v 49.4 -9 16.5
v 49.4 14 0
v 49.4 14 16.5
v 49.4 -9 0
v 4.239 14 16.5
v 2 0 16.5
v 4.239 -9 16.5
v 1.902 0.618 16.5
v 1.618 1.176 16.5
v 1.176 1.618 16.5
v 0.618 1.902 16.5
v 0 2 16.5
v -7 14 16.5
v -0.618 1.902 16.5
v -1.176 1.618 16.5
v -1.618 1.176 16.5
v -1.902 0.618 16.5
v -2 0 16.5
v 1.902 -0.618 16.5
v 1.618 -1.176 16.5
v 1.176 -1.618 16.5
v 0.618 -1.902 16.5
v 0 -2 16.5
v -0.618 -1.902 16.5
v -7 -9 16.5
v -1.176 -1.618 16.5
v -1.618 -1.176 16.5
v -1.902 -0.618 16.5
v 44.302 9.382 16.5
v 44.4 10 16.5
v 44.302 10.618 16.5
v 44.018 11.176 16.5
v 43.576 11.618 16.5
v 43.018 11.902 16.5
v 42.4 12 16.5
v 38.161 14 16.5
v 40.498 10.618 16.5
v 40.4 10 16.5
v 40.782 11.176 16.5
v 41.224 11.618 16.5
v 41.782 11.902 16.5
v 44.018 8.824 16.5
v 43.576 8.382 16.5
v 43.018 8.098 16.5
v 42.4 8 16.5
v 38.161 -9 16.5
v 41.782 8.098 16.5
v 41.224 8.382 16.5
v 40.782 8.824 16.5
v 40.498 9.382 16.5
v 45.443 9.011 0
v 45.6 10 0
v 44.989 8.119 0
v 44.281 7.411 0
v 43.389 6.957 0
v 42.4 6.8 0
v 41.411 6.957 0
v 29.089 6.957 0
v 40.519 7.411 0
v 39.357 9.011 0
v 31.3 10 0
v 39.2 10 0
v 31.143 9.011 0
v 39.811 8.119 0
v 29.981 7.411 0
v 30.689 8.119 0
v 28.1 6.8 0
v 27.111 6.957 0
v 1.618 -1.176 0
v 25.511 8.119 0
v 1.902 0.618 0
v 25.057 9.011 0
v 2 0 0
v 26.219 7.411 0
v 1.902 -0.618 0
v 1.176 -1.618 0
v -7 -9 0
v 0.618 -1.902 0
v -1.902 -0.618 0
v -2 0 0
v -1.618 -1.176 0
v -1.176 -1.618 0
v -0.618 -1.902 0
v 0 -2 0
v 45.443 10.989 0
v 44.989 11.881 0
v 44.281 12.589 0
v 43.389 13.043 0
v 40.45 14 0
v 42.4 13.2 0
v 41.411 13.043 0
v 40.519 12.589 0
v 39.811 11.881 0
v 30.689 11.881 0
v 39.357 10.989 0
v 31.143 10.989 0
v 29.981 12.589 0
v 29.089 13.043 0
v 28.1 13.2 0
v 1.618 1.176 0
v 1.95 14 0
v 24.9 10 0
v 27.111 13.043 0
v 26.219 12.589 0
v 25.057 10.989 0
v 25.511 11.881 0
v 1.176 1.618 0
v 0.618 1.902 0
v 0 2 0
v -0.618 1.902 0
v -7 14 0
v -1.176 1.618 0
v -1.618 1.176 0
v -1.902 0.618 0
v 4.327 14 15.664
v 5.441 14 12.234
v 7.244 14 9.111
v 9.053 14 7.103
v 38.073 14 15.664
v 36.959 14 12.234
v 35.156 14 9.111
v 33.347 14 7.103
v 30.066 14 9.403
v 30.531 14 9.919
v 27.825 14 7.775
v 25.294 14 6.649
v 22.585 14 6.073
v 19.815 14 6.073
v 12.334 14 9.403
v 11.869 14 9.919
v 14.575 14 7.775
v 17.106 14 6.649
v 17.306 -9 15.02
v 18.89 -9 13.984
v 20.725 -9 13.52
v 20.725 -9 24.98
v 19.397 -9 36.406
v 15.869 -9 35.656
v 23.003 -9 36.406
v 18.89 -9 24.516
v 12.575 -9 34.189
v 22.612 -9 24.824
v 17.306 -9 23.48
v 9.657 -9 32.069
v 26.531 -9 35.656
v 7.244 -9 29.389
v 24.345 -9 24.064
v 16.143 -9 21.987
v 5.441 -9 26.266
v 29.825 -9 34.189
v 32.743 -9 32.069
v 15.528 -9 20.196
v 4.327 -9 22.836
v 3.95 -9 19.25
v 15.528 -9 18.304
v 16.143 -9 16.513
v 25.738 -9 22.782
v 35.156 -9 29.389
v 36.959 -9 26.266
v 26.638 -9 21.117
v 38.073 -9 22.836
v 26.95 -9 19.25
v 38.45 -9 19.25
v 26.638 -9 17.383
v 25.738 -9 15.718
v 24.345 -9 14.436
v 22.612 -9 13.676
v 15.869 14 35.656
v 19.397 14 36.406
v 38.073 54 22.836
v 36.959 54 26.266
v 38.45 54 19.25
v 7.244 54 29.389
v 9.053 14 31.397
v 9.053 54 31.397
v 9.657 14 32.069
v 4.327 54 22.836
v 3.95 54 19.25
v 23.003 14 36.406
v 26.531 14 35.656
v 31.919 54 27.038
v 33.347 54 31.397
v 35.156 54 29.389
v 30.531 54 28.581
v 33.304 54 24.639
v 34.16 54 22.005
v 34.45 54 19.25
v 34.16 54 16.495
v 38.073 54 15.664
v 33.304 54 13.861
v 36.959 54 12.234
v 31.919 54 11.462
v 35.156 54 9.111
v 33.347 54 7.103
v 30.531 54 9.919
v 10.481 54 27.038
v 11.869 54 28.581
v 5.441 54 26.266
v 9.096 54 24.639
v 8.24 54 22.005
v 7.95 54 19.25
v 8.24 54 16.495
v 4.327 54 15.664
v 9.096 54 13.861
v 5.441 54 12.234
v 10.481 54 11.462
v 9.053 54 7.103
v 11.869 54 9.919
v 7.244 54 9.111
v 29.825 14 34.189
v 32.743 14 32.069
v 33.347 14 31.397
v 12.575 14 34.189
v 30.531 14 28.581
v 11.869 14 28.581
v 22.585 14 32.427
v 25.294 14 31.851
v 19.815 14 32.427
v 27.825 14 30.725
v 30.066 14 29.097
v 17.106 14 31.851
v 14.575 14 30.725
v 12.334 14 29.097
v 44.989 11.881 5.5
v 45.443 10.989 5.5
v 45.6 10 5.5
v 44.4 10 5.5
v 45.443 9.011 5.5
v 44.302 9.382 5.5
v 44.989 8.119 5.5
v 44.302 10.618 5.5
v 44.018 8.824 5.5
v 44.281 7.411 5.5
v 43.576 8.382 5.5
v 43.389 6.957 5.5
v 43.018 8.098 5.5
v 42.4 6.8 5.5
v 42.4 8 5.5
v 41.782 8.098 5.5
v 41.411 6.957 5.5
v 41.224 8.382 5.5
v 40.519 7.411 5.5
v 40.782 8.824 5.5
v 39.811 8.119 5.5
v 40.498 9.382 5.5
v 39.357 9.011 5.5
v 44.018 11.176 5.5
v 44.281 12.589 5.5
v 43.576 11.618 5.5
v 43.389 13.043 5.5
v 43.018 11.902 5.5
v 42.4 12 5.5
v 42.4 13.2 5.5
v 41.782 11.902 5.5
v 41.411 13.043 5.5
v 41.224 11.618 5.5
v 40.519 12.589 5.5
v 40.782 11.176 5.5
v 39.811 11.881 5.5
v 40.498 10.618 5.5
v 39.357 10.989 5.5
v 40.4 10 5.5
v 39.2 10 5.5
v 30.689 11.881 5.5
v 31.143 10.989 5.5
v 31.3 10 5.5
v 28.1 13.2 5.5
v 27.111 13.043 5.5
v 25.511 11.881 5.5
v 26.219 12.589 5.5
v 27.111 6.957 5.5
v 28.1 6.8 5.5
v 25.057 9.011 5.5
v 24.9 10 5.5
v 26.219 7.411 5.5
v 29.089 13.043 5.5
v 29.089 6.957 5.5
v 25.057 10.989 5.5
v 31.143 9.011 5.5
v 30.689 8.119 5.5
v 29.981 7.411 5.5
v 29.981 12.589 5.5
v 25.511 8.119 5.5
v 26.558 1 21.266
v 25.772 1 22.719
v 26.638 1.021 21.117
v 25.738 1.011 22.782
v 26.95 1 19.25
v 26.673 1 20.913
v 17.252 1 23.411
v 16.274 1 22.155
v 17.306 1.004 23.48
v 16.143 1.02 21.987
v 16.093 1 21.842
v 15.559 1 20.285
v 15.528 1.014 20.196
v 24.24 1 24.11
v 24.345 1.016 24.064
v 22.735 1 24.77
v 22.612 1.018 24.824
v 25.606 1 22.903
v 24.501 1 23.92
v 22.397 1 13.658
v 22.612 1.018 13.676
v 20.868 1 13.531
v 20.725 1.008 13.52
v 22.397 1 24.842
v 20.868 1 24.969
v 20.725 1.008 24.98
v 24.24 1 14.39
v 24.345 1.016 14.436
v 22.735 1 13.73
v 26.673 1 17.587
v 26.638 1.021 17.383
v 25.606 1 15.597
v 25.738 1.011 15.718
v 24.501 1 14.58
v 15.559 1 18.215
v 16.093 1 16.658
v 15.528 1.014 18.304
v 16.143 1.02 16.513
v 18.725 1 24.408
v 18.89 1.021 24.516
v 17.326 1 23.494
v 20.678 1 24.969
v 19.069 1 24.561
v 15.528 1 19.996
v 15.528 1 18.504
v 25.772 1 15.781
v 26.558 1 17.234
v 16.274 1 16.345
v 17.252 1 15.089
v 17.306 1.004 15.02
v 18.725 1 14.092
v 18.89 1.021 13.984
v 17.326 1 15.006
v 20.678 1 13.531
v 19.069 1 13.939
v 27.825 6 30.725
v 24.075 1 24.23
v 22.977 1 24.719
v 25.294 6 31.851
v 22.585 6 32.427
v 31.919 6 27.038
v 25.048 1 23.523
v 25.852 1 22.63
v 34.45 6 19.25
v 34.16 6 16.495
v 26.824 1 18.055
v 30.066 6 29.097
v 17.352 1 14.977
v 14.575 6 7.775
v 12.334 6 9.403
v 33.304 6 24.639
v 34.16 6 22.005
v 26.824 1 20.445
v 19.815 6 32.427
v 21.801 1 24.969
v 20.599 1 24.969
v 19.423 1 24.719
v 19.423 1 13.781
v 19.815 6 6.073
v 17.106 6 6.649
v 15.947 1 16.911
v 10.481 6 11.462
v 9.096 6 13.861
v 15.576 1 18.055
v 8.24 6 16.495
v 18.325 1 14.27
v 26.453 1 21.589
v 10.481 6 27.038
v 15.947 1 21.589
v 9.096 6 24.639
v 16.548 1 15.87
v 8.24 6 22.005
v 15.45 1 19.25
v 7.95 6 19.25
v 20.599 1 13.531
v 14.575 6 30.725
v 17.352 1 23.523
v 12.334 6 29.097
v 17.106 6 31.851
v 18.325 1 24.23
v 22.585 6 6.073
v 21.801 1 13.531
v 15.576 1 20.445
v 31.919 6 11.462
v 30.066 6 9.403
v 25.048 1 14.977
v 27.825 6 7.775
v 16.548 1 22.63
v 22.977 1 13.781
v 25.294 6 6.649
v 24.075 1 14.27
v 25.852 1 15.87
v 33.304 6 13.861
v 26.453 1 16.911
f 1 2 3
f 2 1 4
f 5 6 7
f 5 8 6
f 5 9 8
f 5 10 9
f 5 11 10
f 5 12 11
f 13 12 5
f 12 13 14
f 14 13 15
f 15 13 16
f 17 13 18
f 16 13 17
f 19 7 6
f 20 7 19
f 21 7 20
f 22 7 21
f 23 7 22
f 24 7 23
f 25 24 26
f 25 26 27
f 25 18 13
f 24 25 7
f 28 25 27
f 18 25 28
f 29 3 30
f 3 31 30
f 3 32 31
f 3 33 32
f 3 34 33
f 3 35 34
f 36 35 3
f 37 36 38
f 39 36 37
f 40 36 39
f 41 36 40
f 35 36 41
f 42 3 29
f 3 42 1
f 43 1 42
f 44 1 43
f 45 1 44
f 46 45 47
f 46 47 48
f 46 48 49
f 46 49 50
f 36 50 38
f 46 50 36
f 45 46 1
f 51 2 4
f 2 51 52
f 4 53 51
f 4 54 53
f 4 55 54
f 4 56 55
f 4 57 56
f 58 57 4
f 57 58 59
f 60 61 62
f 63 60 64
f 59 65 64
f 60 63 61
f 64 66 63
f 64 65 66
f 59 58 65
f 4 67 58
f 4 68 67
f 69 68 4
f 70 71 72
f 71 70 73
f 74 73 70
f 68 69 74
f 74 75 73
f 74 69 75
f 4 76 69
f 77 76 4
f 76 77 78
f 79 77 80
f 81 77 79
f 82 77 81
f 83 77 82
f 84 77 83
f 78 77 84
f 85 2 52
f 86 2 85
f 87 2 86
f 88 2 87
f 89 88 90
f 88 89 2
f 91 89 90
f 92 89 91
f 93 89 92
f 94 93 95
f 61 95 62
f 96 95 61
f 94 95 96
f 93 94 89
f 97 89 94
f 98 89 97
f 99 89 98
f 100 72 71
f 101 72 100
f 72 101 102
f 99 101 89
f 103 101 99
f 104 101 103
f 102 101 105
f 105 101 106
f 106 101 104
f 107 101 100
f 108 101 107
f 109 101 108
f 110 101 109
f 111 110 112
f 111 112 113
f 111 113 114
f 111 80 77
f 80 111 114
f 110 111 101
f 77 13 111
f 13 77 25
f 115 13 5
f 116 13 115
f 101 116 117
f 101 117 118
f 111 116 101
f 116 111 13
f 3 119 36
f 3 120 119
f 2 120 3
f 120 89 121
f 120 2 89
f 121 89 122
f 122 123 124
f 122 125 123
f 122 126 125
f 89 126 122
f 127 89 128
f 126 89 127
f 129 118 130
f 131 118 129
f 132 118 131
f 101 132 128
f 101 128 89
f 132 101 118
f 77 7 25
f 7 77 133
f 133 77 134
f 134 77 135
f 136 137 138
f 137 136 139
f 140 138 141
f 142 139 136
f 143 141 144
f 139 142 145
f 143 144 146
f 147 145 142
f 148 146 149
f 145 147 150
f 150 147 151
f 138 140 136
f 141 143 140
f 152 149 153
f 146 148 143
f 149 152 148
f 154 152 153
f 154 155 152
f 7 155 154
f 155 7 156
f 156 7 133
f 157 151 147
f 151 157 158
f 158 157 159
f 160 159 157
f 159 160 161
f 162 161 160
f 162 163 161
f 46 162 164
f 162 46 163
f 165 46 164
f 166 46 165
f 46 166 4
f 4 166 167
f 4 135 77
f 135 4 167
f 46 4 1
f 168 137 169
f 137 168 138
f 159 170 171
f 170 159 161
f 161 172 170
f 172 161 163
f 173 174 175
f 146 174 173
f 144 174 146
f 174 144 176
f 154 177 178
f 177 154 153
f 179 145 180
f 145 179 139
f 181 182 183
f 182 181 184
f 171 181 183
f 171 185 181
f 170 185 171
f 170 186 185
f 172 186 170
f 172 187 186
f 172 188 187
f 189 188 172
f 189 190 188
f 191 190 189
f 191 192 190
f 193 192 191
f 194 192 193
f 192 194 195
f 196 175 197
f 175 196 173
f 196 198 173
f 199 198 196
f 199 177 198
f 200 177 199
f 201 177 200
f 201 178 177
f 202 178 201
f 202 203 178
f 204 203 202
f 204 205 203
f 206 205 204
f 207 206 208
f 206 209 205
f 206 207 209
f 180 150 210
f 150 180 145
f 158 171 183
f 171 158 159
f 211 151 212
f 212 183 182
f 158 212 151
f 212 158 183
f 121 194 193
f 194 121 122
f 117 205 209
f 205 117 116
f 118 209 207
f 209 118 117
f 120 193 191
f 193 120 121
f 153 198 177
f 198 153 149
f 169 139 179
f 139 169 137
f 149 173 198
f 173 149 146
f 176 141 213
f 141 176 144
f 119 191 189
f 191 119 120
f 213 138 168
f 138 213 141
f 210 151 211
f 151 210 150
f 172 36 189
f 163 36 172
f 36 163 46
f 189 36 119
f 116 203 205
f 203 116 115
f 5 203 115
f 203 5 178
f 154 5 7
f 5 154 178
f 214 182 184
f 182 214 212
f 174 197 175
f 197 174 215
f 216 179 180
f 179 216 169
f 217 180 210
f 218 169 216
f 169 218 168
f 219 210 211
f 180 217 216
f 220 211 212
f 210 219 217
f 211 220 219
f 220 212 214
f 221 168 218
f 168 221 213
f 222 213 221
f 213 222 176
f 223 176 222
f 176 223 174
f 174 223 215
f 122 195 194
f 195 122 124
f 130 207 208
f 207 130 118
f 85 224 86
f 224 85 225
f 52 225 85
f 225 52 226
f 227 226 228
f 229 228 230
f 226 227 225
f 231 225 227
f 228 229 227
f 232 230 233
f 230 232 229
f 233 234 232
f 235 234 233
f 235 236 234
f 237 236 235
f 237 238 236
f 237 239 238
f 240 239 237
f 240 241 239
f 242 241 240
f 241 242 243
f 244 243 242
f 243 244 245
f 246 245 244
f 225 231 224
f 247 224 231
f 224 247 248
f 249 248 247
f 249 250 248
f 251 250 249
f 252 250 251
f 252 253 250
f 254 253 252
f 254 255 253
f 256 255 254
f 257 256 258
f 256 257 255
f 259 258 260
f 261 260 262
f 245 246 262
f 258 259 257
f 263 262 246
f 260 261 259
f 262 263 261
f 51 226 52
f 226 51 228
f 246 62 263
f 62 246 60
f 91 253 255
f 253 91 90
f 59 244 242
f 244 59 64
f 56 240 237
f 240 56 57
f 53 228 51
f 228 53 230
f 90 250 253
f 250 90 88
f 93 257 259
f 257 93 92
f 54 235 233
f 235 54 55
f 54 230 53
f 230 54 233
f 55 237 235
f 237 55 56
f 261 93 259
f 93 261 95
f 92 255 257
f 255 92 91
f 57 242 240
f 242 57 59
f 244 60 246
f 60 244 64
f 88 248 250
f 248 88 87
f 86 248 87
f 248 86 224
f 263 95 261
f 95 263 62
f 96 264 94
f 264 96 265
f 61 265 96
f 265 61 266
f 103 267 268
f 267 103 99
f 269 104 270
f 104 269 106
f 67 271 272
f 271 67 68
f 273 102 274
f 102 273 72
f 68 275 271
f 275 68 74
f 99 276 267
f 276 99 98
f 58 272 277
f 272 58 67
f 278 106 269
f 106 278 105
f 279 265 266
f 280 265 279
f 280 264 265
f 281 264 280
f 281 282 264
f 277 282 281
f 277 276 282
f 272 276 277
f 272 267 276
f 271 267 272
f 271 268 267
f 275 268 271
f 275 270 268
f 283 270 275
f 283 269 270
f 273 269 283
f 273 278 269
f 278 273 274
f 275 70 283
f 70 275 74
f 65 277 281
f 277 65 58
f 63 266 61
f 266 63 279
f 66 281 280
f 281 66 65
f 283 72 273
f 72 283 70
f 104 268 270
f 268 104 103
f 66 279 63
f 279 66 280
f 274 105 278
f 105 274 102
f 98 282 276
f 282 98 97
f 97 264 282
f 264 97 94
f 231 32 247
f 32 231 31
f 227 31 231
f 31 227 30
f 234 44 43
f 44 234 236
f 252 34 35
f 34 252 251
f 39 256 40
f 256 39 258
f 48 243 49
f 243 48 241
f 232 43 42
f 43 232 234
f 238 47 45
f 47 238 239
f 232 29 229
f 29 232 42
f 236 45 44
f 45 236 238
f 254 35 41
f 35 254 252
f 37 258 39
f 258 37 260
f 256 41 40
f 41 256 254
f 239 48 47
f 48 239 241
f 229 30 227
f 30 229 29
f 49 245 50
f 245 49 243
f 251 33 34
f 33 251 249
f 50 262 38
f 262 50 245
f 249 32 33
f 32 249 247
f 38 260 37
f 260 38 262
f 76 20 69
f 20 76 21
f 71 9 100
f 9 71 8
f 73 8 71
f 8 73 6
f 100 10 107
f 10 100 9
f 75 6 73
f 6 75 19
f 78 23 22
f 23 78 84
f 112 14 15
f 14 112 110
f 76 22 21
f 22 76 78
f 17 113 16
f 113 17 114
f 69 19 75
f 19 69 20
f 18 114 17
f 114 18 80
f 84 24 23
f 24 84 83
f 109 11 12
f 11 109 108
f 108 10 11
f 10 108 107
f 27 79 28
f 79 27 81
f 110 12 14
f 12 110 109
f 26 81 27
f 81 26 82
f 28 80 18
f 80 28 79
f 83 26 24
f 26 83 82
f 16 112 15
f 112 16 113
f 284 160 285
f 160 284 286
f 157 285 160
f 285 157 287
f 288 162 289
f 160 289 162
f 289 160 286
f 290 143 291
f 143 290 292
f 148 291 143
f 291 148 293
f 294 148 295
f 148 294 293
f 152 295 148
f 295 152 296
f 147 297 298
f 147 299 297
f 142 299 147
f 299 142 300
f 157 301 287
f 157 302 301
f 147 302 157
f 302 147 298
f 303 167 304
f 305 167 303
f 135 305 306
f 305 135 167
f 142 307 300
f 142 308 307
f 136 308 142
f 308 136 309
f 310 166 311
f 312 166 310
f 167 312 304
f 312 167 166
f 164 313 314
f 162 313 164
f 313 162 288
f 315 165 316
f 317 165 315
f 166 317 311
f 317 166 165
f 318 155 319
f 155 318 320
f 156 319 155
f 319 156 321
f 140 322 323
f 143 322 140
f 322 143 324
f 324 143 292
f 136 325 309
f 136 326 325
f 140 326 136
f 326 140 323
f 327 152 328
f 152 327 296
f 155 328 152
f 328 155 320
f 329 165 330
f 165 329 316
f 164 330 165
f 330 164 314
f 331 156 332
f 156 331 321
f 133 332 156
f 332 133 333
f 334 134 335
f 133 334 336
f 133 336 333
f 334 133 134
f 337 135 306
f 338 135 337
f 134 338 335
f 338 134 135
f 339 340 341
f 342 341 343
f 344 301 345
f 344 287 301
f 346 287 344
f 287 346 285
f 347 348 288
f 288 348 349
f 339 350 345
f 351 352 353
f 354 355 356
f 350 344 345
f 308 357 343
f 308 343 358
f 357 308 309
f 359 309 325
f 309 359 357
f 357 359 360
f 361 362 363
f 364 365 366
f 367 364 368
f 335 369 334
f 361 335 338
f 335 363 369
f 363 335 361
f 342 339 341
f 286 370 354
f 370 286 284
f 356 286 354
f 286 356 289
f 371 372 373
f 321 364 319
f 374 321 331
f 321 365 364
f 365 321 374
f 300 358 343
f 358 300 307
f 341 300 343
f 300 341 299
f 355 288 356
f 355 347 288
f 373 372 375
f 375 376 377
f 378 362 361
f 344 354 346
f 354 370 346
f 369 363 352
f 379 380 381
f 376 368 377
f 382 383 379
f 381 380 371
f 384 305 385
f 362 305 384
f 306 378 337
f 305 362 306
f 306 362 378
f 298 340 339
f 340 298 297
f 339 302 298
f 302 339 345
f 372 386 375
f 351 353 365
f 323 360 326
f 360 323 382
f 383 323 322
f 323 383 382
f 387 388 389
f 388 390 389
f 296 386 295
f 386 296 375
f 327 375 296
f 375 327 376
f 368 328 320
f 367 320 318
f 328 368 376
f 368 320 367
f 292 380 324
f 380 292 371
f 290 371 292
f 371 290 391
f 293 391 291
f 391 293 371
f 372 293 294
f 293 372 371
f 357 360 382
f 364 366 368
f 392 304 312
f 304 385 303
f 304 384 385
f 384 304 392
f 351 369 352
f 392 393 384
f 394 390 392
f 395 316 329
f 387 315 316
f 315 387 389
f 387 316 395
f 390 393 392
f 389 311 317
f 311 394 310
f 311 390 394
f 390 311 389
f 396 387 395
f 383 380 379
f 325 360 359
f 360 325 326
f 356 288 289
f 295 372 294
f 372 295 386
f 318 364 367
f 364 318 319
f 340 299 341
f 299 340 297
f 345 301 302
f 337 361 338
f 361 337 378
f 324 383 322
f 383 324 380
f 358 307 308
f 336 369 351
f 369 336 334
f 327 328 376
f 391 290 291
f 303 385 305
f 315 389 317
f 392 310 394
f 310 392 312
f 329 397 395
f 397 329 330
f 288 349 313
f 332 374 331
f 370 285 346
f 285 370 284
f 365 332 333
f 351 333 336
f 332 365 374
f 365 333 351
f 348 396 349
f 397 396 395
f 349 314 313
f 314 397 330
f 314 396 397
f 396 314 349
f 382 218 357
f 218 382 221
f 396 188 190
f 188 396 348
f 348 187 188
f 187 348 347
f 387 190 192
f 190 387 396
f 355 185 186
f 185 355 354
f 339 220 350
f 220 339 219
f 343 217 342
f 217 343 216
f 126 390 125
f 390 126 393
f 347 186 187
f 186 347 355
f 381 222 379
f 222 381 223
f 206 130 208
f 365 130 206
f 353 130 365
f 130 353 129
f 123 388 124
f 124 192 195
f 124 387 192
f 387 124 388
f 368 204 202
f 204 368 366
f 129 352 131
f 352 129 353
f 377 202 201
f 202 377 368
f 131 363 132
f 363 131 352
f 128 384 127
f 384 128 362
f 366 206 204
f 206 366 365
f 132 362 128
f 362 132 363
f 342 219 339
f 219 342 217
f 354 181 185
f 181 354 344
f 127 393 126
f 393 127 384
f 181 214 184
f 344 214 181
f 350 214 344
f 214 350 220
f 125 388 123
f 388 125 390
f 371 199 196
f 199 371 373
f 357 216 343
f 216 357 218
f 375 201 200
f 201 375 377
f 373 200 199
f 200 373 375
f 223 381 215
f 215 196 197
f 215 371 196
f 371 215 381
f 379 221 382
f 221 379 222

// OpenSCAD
screw1Height = 35; A = 35;
screw4Height = 45; B = 45;
screwWidth = 42.4; C = 42.4;
screw4Depth = 4.5; D = 4.5;
cylinderDiameter = 25.5; E = 25.5;
nozzleRadius = 10.5; F = 10.5;
chamferHeight = 5; G = 5;
chamferToEnd = 36; H = 36;
screw4Width = 5.4; I = 5.4;
screwDiameter = 3; J = 3;
screwHeadDiameter = 5; K = 5;
screwMinHeight = 9; L = 9;
screwMaxHeight = 15; M = 15;
bumpDepth = 3; N = 3;
bumpDiameter = 9.5; O = 9.5;
bumpHeight = 57; P = 57;
bumpHeight2 = 18; Q = 18;
dist34 = 14.3; R = 14.3; // might be wrong

syringeZ = (E+9)/2 + 2;
sup = 40; // syringe support

difference(){
    // main body object
    union(){
        // base plate
        translate([-J-4, -(A-Q-8), 0])cube([screwWidth+J*2+8, P-Q-16, L+D+3]);
        // syringe holder
        translate([C/2, P-A-8+sup, syringeZ])rotate([90,0,0])cylinder(h=P-Q-16+sup, d=E+9);
    }

    // raised screw hole 4
    translate([C, B-A, 0])cylinder($fn=20, h=D+1, d=I+1);
    // raised screw hole 3
    translate([C-R, B-A, 0])cylinder($fn=20, h=D+1, d=I+1);

    // through screw 4
    translate([C, B-A, 0])cylinder($fn=20, h=L+D+3, d=J+1);
    // through screw 1
    cylinder($fn=20, h=L+D+3, d=J+1);

    // nozzle
    translate([C/2, P/2, syringeZ])rotate([90,0,0])cylinder(h=P, d=F+1);
    // chamfer
    translate([C/2, H-A, syringeZ])rotate([-90,0,0])cylinder(h=G, d1=F+1, d2=E+1);
    // main syringe
    translate([C/2, H-A+G, syringeZ])rotate([-90,0,0])cylinder(h=P, d=E+1);
    
    translate([C/2,P-A-8,syringeZ])rotate([0,-45,0]){
        cube(sup);
        translate([-sup,0,-sup])cube(sup);
    }
}
